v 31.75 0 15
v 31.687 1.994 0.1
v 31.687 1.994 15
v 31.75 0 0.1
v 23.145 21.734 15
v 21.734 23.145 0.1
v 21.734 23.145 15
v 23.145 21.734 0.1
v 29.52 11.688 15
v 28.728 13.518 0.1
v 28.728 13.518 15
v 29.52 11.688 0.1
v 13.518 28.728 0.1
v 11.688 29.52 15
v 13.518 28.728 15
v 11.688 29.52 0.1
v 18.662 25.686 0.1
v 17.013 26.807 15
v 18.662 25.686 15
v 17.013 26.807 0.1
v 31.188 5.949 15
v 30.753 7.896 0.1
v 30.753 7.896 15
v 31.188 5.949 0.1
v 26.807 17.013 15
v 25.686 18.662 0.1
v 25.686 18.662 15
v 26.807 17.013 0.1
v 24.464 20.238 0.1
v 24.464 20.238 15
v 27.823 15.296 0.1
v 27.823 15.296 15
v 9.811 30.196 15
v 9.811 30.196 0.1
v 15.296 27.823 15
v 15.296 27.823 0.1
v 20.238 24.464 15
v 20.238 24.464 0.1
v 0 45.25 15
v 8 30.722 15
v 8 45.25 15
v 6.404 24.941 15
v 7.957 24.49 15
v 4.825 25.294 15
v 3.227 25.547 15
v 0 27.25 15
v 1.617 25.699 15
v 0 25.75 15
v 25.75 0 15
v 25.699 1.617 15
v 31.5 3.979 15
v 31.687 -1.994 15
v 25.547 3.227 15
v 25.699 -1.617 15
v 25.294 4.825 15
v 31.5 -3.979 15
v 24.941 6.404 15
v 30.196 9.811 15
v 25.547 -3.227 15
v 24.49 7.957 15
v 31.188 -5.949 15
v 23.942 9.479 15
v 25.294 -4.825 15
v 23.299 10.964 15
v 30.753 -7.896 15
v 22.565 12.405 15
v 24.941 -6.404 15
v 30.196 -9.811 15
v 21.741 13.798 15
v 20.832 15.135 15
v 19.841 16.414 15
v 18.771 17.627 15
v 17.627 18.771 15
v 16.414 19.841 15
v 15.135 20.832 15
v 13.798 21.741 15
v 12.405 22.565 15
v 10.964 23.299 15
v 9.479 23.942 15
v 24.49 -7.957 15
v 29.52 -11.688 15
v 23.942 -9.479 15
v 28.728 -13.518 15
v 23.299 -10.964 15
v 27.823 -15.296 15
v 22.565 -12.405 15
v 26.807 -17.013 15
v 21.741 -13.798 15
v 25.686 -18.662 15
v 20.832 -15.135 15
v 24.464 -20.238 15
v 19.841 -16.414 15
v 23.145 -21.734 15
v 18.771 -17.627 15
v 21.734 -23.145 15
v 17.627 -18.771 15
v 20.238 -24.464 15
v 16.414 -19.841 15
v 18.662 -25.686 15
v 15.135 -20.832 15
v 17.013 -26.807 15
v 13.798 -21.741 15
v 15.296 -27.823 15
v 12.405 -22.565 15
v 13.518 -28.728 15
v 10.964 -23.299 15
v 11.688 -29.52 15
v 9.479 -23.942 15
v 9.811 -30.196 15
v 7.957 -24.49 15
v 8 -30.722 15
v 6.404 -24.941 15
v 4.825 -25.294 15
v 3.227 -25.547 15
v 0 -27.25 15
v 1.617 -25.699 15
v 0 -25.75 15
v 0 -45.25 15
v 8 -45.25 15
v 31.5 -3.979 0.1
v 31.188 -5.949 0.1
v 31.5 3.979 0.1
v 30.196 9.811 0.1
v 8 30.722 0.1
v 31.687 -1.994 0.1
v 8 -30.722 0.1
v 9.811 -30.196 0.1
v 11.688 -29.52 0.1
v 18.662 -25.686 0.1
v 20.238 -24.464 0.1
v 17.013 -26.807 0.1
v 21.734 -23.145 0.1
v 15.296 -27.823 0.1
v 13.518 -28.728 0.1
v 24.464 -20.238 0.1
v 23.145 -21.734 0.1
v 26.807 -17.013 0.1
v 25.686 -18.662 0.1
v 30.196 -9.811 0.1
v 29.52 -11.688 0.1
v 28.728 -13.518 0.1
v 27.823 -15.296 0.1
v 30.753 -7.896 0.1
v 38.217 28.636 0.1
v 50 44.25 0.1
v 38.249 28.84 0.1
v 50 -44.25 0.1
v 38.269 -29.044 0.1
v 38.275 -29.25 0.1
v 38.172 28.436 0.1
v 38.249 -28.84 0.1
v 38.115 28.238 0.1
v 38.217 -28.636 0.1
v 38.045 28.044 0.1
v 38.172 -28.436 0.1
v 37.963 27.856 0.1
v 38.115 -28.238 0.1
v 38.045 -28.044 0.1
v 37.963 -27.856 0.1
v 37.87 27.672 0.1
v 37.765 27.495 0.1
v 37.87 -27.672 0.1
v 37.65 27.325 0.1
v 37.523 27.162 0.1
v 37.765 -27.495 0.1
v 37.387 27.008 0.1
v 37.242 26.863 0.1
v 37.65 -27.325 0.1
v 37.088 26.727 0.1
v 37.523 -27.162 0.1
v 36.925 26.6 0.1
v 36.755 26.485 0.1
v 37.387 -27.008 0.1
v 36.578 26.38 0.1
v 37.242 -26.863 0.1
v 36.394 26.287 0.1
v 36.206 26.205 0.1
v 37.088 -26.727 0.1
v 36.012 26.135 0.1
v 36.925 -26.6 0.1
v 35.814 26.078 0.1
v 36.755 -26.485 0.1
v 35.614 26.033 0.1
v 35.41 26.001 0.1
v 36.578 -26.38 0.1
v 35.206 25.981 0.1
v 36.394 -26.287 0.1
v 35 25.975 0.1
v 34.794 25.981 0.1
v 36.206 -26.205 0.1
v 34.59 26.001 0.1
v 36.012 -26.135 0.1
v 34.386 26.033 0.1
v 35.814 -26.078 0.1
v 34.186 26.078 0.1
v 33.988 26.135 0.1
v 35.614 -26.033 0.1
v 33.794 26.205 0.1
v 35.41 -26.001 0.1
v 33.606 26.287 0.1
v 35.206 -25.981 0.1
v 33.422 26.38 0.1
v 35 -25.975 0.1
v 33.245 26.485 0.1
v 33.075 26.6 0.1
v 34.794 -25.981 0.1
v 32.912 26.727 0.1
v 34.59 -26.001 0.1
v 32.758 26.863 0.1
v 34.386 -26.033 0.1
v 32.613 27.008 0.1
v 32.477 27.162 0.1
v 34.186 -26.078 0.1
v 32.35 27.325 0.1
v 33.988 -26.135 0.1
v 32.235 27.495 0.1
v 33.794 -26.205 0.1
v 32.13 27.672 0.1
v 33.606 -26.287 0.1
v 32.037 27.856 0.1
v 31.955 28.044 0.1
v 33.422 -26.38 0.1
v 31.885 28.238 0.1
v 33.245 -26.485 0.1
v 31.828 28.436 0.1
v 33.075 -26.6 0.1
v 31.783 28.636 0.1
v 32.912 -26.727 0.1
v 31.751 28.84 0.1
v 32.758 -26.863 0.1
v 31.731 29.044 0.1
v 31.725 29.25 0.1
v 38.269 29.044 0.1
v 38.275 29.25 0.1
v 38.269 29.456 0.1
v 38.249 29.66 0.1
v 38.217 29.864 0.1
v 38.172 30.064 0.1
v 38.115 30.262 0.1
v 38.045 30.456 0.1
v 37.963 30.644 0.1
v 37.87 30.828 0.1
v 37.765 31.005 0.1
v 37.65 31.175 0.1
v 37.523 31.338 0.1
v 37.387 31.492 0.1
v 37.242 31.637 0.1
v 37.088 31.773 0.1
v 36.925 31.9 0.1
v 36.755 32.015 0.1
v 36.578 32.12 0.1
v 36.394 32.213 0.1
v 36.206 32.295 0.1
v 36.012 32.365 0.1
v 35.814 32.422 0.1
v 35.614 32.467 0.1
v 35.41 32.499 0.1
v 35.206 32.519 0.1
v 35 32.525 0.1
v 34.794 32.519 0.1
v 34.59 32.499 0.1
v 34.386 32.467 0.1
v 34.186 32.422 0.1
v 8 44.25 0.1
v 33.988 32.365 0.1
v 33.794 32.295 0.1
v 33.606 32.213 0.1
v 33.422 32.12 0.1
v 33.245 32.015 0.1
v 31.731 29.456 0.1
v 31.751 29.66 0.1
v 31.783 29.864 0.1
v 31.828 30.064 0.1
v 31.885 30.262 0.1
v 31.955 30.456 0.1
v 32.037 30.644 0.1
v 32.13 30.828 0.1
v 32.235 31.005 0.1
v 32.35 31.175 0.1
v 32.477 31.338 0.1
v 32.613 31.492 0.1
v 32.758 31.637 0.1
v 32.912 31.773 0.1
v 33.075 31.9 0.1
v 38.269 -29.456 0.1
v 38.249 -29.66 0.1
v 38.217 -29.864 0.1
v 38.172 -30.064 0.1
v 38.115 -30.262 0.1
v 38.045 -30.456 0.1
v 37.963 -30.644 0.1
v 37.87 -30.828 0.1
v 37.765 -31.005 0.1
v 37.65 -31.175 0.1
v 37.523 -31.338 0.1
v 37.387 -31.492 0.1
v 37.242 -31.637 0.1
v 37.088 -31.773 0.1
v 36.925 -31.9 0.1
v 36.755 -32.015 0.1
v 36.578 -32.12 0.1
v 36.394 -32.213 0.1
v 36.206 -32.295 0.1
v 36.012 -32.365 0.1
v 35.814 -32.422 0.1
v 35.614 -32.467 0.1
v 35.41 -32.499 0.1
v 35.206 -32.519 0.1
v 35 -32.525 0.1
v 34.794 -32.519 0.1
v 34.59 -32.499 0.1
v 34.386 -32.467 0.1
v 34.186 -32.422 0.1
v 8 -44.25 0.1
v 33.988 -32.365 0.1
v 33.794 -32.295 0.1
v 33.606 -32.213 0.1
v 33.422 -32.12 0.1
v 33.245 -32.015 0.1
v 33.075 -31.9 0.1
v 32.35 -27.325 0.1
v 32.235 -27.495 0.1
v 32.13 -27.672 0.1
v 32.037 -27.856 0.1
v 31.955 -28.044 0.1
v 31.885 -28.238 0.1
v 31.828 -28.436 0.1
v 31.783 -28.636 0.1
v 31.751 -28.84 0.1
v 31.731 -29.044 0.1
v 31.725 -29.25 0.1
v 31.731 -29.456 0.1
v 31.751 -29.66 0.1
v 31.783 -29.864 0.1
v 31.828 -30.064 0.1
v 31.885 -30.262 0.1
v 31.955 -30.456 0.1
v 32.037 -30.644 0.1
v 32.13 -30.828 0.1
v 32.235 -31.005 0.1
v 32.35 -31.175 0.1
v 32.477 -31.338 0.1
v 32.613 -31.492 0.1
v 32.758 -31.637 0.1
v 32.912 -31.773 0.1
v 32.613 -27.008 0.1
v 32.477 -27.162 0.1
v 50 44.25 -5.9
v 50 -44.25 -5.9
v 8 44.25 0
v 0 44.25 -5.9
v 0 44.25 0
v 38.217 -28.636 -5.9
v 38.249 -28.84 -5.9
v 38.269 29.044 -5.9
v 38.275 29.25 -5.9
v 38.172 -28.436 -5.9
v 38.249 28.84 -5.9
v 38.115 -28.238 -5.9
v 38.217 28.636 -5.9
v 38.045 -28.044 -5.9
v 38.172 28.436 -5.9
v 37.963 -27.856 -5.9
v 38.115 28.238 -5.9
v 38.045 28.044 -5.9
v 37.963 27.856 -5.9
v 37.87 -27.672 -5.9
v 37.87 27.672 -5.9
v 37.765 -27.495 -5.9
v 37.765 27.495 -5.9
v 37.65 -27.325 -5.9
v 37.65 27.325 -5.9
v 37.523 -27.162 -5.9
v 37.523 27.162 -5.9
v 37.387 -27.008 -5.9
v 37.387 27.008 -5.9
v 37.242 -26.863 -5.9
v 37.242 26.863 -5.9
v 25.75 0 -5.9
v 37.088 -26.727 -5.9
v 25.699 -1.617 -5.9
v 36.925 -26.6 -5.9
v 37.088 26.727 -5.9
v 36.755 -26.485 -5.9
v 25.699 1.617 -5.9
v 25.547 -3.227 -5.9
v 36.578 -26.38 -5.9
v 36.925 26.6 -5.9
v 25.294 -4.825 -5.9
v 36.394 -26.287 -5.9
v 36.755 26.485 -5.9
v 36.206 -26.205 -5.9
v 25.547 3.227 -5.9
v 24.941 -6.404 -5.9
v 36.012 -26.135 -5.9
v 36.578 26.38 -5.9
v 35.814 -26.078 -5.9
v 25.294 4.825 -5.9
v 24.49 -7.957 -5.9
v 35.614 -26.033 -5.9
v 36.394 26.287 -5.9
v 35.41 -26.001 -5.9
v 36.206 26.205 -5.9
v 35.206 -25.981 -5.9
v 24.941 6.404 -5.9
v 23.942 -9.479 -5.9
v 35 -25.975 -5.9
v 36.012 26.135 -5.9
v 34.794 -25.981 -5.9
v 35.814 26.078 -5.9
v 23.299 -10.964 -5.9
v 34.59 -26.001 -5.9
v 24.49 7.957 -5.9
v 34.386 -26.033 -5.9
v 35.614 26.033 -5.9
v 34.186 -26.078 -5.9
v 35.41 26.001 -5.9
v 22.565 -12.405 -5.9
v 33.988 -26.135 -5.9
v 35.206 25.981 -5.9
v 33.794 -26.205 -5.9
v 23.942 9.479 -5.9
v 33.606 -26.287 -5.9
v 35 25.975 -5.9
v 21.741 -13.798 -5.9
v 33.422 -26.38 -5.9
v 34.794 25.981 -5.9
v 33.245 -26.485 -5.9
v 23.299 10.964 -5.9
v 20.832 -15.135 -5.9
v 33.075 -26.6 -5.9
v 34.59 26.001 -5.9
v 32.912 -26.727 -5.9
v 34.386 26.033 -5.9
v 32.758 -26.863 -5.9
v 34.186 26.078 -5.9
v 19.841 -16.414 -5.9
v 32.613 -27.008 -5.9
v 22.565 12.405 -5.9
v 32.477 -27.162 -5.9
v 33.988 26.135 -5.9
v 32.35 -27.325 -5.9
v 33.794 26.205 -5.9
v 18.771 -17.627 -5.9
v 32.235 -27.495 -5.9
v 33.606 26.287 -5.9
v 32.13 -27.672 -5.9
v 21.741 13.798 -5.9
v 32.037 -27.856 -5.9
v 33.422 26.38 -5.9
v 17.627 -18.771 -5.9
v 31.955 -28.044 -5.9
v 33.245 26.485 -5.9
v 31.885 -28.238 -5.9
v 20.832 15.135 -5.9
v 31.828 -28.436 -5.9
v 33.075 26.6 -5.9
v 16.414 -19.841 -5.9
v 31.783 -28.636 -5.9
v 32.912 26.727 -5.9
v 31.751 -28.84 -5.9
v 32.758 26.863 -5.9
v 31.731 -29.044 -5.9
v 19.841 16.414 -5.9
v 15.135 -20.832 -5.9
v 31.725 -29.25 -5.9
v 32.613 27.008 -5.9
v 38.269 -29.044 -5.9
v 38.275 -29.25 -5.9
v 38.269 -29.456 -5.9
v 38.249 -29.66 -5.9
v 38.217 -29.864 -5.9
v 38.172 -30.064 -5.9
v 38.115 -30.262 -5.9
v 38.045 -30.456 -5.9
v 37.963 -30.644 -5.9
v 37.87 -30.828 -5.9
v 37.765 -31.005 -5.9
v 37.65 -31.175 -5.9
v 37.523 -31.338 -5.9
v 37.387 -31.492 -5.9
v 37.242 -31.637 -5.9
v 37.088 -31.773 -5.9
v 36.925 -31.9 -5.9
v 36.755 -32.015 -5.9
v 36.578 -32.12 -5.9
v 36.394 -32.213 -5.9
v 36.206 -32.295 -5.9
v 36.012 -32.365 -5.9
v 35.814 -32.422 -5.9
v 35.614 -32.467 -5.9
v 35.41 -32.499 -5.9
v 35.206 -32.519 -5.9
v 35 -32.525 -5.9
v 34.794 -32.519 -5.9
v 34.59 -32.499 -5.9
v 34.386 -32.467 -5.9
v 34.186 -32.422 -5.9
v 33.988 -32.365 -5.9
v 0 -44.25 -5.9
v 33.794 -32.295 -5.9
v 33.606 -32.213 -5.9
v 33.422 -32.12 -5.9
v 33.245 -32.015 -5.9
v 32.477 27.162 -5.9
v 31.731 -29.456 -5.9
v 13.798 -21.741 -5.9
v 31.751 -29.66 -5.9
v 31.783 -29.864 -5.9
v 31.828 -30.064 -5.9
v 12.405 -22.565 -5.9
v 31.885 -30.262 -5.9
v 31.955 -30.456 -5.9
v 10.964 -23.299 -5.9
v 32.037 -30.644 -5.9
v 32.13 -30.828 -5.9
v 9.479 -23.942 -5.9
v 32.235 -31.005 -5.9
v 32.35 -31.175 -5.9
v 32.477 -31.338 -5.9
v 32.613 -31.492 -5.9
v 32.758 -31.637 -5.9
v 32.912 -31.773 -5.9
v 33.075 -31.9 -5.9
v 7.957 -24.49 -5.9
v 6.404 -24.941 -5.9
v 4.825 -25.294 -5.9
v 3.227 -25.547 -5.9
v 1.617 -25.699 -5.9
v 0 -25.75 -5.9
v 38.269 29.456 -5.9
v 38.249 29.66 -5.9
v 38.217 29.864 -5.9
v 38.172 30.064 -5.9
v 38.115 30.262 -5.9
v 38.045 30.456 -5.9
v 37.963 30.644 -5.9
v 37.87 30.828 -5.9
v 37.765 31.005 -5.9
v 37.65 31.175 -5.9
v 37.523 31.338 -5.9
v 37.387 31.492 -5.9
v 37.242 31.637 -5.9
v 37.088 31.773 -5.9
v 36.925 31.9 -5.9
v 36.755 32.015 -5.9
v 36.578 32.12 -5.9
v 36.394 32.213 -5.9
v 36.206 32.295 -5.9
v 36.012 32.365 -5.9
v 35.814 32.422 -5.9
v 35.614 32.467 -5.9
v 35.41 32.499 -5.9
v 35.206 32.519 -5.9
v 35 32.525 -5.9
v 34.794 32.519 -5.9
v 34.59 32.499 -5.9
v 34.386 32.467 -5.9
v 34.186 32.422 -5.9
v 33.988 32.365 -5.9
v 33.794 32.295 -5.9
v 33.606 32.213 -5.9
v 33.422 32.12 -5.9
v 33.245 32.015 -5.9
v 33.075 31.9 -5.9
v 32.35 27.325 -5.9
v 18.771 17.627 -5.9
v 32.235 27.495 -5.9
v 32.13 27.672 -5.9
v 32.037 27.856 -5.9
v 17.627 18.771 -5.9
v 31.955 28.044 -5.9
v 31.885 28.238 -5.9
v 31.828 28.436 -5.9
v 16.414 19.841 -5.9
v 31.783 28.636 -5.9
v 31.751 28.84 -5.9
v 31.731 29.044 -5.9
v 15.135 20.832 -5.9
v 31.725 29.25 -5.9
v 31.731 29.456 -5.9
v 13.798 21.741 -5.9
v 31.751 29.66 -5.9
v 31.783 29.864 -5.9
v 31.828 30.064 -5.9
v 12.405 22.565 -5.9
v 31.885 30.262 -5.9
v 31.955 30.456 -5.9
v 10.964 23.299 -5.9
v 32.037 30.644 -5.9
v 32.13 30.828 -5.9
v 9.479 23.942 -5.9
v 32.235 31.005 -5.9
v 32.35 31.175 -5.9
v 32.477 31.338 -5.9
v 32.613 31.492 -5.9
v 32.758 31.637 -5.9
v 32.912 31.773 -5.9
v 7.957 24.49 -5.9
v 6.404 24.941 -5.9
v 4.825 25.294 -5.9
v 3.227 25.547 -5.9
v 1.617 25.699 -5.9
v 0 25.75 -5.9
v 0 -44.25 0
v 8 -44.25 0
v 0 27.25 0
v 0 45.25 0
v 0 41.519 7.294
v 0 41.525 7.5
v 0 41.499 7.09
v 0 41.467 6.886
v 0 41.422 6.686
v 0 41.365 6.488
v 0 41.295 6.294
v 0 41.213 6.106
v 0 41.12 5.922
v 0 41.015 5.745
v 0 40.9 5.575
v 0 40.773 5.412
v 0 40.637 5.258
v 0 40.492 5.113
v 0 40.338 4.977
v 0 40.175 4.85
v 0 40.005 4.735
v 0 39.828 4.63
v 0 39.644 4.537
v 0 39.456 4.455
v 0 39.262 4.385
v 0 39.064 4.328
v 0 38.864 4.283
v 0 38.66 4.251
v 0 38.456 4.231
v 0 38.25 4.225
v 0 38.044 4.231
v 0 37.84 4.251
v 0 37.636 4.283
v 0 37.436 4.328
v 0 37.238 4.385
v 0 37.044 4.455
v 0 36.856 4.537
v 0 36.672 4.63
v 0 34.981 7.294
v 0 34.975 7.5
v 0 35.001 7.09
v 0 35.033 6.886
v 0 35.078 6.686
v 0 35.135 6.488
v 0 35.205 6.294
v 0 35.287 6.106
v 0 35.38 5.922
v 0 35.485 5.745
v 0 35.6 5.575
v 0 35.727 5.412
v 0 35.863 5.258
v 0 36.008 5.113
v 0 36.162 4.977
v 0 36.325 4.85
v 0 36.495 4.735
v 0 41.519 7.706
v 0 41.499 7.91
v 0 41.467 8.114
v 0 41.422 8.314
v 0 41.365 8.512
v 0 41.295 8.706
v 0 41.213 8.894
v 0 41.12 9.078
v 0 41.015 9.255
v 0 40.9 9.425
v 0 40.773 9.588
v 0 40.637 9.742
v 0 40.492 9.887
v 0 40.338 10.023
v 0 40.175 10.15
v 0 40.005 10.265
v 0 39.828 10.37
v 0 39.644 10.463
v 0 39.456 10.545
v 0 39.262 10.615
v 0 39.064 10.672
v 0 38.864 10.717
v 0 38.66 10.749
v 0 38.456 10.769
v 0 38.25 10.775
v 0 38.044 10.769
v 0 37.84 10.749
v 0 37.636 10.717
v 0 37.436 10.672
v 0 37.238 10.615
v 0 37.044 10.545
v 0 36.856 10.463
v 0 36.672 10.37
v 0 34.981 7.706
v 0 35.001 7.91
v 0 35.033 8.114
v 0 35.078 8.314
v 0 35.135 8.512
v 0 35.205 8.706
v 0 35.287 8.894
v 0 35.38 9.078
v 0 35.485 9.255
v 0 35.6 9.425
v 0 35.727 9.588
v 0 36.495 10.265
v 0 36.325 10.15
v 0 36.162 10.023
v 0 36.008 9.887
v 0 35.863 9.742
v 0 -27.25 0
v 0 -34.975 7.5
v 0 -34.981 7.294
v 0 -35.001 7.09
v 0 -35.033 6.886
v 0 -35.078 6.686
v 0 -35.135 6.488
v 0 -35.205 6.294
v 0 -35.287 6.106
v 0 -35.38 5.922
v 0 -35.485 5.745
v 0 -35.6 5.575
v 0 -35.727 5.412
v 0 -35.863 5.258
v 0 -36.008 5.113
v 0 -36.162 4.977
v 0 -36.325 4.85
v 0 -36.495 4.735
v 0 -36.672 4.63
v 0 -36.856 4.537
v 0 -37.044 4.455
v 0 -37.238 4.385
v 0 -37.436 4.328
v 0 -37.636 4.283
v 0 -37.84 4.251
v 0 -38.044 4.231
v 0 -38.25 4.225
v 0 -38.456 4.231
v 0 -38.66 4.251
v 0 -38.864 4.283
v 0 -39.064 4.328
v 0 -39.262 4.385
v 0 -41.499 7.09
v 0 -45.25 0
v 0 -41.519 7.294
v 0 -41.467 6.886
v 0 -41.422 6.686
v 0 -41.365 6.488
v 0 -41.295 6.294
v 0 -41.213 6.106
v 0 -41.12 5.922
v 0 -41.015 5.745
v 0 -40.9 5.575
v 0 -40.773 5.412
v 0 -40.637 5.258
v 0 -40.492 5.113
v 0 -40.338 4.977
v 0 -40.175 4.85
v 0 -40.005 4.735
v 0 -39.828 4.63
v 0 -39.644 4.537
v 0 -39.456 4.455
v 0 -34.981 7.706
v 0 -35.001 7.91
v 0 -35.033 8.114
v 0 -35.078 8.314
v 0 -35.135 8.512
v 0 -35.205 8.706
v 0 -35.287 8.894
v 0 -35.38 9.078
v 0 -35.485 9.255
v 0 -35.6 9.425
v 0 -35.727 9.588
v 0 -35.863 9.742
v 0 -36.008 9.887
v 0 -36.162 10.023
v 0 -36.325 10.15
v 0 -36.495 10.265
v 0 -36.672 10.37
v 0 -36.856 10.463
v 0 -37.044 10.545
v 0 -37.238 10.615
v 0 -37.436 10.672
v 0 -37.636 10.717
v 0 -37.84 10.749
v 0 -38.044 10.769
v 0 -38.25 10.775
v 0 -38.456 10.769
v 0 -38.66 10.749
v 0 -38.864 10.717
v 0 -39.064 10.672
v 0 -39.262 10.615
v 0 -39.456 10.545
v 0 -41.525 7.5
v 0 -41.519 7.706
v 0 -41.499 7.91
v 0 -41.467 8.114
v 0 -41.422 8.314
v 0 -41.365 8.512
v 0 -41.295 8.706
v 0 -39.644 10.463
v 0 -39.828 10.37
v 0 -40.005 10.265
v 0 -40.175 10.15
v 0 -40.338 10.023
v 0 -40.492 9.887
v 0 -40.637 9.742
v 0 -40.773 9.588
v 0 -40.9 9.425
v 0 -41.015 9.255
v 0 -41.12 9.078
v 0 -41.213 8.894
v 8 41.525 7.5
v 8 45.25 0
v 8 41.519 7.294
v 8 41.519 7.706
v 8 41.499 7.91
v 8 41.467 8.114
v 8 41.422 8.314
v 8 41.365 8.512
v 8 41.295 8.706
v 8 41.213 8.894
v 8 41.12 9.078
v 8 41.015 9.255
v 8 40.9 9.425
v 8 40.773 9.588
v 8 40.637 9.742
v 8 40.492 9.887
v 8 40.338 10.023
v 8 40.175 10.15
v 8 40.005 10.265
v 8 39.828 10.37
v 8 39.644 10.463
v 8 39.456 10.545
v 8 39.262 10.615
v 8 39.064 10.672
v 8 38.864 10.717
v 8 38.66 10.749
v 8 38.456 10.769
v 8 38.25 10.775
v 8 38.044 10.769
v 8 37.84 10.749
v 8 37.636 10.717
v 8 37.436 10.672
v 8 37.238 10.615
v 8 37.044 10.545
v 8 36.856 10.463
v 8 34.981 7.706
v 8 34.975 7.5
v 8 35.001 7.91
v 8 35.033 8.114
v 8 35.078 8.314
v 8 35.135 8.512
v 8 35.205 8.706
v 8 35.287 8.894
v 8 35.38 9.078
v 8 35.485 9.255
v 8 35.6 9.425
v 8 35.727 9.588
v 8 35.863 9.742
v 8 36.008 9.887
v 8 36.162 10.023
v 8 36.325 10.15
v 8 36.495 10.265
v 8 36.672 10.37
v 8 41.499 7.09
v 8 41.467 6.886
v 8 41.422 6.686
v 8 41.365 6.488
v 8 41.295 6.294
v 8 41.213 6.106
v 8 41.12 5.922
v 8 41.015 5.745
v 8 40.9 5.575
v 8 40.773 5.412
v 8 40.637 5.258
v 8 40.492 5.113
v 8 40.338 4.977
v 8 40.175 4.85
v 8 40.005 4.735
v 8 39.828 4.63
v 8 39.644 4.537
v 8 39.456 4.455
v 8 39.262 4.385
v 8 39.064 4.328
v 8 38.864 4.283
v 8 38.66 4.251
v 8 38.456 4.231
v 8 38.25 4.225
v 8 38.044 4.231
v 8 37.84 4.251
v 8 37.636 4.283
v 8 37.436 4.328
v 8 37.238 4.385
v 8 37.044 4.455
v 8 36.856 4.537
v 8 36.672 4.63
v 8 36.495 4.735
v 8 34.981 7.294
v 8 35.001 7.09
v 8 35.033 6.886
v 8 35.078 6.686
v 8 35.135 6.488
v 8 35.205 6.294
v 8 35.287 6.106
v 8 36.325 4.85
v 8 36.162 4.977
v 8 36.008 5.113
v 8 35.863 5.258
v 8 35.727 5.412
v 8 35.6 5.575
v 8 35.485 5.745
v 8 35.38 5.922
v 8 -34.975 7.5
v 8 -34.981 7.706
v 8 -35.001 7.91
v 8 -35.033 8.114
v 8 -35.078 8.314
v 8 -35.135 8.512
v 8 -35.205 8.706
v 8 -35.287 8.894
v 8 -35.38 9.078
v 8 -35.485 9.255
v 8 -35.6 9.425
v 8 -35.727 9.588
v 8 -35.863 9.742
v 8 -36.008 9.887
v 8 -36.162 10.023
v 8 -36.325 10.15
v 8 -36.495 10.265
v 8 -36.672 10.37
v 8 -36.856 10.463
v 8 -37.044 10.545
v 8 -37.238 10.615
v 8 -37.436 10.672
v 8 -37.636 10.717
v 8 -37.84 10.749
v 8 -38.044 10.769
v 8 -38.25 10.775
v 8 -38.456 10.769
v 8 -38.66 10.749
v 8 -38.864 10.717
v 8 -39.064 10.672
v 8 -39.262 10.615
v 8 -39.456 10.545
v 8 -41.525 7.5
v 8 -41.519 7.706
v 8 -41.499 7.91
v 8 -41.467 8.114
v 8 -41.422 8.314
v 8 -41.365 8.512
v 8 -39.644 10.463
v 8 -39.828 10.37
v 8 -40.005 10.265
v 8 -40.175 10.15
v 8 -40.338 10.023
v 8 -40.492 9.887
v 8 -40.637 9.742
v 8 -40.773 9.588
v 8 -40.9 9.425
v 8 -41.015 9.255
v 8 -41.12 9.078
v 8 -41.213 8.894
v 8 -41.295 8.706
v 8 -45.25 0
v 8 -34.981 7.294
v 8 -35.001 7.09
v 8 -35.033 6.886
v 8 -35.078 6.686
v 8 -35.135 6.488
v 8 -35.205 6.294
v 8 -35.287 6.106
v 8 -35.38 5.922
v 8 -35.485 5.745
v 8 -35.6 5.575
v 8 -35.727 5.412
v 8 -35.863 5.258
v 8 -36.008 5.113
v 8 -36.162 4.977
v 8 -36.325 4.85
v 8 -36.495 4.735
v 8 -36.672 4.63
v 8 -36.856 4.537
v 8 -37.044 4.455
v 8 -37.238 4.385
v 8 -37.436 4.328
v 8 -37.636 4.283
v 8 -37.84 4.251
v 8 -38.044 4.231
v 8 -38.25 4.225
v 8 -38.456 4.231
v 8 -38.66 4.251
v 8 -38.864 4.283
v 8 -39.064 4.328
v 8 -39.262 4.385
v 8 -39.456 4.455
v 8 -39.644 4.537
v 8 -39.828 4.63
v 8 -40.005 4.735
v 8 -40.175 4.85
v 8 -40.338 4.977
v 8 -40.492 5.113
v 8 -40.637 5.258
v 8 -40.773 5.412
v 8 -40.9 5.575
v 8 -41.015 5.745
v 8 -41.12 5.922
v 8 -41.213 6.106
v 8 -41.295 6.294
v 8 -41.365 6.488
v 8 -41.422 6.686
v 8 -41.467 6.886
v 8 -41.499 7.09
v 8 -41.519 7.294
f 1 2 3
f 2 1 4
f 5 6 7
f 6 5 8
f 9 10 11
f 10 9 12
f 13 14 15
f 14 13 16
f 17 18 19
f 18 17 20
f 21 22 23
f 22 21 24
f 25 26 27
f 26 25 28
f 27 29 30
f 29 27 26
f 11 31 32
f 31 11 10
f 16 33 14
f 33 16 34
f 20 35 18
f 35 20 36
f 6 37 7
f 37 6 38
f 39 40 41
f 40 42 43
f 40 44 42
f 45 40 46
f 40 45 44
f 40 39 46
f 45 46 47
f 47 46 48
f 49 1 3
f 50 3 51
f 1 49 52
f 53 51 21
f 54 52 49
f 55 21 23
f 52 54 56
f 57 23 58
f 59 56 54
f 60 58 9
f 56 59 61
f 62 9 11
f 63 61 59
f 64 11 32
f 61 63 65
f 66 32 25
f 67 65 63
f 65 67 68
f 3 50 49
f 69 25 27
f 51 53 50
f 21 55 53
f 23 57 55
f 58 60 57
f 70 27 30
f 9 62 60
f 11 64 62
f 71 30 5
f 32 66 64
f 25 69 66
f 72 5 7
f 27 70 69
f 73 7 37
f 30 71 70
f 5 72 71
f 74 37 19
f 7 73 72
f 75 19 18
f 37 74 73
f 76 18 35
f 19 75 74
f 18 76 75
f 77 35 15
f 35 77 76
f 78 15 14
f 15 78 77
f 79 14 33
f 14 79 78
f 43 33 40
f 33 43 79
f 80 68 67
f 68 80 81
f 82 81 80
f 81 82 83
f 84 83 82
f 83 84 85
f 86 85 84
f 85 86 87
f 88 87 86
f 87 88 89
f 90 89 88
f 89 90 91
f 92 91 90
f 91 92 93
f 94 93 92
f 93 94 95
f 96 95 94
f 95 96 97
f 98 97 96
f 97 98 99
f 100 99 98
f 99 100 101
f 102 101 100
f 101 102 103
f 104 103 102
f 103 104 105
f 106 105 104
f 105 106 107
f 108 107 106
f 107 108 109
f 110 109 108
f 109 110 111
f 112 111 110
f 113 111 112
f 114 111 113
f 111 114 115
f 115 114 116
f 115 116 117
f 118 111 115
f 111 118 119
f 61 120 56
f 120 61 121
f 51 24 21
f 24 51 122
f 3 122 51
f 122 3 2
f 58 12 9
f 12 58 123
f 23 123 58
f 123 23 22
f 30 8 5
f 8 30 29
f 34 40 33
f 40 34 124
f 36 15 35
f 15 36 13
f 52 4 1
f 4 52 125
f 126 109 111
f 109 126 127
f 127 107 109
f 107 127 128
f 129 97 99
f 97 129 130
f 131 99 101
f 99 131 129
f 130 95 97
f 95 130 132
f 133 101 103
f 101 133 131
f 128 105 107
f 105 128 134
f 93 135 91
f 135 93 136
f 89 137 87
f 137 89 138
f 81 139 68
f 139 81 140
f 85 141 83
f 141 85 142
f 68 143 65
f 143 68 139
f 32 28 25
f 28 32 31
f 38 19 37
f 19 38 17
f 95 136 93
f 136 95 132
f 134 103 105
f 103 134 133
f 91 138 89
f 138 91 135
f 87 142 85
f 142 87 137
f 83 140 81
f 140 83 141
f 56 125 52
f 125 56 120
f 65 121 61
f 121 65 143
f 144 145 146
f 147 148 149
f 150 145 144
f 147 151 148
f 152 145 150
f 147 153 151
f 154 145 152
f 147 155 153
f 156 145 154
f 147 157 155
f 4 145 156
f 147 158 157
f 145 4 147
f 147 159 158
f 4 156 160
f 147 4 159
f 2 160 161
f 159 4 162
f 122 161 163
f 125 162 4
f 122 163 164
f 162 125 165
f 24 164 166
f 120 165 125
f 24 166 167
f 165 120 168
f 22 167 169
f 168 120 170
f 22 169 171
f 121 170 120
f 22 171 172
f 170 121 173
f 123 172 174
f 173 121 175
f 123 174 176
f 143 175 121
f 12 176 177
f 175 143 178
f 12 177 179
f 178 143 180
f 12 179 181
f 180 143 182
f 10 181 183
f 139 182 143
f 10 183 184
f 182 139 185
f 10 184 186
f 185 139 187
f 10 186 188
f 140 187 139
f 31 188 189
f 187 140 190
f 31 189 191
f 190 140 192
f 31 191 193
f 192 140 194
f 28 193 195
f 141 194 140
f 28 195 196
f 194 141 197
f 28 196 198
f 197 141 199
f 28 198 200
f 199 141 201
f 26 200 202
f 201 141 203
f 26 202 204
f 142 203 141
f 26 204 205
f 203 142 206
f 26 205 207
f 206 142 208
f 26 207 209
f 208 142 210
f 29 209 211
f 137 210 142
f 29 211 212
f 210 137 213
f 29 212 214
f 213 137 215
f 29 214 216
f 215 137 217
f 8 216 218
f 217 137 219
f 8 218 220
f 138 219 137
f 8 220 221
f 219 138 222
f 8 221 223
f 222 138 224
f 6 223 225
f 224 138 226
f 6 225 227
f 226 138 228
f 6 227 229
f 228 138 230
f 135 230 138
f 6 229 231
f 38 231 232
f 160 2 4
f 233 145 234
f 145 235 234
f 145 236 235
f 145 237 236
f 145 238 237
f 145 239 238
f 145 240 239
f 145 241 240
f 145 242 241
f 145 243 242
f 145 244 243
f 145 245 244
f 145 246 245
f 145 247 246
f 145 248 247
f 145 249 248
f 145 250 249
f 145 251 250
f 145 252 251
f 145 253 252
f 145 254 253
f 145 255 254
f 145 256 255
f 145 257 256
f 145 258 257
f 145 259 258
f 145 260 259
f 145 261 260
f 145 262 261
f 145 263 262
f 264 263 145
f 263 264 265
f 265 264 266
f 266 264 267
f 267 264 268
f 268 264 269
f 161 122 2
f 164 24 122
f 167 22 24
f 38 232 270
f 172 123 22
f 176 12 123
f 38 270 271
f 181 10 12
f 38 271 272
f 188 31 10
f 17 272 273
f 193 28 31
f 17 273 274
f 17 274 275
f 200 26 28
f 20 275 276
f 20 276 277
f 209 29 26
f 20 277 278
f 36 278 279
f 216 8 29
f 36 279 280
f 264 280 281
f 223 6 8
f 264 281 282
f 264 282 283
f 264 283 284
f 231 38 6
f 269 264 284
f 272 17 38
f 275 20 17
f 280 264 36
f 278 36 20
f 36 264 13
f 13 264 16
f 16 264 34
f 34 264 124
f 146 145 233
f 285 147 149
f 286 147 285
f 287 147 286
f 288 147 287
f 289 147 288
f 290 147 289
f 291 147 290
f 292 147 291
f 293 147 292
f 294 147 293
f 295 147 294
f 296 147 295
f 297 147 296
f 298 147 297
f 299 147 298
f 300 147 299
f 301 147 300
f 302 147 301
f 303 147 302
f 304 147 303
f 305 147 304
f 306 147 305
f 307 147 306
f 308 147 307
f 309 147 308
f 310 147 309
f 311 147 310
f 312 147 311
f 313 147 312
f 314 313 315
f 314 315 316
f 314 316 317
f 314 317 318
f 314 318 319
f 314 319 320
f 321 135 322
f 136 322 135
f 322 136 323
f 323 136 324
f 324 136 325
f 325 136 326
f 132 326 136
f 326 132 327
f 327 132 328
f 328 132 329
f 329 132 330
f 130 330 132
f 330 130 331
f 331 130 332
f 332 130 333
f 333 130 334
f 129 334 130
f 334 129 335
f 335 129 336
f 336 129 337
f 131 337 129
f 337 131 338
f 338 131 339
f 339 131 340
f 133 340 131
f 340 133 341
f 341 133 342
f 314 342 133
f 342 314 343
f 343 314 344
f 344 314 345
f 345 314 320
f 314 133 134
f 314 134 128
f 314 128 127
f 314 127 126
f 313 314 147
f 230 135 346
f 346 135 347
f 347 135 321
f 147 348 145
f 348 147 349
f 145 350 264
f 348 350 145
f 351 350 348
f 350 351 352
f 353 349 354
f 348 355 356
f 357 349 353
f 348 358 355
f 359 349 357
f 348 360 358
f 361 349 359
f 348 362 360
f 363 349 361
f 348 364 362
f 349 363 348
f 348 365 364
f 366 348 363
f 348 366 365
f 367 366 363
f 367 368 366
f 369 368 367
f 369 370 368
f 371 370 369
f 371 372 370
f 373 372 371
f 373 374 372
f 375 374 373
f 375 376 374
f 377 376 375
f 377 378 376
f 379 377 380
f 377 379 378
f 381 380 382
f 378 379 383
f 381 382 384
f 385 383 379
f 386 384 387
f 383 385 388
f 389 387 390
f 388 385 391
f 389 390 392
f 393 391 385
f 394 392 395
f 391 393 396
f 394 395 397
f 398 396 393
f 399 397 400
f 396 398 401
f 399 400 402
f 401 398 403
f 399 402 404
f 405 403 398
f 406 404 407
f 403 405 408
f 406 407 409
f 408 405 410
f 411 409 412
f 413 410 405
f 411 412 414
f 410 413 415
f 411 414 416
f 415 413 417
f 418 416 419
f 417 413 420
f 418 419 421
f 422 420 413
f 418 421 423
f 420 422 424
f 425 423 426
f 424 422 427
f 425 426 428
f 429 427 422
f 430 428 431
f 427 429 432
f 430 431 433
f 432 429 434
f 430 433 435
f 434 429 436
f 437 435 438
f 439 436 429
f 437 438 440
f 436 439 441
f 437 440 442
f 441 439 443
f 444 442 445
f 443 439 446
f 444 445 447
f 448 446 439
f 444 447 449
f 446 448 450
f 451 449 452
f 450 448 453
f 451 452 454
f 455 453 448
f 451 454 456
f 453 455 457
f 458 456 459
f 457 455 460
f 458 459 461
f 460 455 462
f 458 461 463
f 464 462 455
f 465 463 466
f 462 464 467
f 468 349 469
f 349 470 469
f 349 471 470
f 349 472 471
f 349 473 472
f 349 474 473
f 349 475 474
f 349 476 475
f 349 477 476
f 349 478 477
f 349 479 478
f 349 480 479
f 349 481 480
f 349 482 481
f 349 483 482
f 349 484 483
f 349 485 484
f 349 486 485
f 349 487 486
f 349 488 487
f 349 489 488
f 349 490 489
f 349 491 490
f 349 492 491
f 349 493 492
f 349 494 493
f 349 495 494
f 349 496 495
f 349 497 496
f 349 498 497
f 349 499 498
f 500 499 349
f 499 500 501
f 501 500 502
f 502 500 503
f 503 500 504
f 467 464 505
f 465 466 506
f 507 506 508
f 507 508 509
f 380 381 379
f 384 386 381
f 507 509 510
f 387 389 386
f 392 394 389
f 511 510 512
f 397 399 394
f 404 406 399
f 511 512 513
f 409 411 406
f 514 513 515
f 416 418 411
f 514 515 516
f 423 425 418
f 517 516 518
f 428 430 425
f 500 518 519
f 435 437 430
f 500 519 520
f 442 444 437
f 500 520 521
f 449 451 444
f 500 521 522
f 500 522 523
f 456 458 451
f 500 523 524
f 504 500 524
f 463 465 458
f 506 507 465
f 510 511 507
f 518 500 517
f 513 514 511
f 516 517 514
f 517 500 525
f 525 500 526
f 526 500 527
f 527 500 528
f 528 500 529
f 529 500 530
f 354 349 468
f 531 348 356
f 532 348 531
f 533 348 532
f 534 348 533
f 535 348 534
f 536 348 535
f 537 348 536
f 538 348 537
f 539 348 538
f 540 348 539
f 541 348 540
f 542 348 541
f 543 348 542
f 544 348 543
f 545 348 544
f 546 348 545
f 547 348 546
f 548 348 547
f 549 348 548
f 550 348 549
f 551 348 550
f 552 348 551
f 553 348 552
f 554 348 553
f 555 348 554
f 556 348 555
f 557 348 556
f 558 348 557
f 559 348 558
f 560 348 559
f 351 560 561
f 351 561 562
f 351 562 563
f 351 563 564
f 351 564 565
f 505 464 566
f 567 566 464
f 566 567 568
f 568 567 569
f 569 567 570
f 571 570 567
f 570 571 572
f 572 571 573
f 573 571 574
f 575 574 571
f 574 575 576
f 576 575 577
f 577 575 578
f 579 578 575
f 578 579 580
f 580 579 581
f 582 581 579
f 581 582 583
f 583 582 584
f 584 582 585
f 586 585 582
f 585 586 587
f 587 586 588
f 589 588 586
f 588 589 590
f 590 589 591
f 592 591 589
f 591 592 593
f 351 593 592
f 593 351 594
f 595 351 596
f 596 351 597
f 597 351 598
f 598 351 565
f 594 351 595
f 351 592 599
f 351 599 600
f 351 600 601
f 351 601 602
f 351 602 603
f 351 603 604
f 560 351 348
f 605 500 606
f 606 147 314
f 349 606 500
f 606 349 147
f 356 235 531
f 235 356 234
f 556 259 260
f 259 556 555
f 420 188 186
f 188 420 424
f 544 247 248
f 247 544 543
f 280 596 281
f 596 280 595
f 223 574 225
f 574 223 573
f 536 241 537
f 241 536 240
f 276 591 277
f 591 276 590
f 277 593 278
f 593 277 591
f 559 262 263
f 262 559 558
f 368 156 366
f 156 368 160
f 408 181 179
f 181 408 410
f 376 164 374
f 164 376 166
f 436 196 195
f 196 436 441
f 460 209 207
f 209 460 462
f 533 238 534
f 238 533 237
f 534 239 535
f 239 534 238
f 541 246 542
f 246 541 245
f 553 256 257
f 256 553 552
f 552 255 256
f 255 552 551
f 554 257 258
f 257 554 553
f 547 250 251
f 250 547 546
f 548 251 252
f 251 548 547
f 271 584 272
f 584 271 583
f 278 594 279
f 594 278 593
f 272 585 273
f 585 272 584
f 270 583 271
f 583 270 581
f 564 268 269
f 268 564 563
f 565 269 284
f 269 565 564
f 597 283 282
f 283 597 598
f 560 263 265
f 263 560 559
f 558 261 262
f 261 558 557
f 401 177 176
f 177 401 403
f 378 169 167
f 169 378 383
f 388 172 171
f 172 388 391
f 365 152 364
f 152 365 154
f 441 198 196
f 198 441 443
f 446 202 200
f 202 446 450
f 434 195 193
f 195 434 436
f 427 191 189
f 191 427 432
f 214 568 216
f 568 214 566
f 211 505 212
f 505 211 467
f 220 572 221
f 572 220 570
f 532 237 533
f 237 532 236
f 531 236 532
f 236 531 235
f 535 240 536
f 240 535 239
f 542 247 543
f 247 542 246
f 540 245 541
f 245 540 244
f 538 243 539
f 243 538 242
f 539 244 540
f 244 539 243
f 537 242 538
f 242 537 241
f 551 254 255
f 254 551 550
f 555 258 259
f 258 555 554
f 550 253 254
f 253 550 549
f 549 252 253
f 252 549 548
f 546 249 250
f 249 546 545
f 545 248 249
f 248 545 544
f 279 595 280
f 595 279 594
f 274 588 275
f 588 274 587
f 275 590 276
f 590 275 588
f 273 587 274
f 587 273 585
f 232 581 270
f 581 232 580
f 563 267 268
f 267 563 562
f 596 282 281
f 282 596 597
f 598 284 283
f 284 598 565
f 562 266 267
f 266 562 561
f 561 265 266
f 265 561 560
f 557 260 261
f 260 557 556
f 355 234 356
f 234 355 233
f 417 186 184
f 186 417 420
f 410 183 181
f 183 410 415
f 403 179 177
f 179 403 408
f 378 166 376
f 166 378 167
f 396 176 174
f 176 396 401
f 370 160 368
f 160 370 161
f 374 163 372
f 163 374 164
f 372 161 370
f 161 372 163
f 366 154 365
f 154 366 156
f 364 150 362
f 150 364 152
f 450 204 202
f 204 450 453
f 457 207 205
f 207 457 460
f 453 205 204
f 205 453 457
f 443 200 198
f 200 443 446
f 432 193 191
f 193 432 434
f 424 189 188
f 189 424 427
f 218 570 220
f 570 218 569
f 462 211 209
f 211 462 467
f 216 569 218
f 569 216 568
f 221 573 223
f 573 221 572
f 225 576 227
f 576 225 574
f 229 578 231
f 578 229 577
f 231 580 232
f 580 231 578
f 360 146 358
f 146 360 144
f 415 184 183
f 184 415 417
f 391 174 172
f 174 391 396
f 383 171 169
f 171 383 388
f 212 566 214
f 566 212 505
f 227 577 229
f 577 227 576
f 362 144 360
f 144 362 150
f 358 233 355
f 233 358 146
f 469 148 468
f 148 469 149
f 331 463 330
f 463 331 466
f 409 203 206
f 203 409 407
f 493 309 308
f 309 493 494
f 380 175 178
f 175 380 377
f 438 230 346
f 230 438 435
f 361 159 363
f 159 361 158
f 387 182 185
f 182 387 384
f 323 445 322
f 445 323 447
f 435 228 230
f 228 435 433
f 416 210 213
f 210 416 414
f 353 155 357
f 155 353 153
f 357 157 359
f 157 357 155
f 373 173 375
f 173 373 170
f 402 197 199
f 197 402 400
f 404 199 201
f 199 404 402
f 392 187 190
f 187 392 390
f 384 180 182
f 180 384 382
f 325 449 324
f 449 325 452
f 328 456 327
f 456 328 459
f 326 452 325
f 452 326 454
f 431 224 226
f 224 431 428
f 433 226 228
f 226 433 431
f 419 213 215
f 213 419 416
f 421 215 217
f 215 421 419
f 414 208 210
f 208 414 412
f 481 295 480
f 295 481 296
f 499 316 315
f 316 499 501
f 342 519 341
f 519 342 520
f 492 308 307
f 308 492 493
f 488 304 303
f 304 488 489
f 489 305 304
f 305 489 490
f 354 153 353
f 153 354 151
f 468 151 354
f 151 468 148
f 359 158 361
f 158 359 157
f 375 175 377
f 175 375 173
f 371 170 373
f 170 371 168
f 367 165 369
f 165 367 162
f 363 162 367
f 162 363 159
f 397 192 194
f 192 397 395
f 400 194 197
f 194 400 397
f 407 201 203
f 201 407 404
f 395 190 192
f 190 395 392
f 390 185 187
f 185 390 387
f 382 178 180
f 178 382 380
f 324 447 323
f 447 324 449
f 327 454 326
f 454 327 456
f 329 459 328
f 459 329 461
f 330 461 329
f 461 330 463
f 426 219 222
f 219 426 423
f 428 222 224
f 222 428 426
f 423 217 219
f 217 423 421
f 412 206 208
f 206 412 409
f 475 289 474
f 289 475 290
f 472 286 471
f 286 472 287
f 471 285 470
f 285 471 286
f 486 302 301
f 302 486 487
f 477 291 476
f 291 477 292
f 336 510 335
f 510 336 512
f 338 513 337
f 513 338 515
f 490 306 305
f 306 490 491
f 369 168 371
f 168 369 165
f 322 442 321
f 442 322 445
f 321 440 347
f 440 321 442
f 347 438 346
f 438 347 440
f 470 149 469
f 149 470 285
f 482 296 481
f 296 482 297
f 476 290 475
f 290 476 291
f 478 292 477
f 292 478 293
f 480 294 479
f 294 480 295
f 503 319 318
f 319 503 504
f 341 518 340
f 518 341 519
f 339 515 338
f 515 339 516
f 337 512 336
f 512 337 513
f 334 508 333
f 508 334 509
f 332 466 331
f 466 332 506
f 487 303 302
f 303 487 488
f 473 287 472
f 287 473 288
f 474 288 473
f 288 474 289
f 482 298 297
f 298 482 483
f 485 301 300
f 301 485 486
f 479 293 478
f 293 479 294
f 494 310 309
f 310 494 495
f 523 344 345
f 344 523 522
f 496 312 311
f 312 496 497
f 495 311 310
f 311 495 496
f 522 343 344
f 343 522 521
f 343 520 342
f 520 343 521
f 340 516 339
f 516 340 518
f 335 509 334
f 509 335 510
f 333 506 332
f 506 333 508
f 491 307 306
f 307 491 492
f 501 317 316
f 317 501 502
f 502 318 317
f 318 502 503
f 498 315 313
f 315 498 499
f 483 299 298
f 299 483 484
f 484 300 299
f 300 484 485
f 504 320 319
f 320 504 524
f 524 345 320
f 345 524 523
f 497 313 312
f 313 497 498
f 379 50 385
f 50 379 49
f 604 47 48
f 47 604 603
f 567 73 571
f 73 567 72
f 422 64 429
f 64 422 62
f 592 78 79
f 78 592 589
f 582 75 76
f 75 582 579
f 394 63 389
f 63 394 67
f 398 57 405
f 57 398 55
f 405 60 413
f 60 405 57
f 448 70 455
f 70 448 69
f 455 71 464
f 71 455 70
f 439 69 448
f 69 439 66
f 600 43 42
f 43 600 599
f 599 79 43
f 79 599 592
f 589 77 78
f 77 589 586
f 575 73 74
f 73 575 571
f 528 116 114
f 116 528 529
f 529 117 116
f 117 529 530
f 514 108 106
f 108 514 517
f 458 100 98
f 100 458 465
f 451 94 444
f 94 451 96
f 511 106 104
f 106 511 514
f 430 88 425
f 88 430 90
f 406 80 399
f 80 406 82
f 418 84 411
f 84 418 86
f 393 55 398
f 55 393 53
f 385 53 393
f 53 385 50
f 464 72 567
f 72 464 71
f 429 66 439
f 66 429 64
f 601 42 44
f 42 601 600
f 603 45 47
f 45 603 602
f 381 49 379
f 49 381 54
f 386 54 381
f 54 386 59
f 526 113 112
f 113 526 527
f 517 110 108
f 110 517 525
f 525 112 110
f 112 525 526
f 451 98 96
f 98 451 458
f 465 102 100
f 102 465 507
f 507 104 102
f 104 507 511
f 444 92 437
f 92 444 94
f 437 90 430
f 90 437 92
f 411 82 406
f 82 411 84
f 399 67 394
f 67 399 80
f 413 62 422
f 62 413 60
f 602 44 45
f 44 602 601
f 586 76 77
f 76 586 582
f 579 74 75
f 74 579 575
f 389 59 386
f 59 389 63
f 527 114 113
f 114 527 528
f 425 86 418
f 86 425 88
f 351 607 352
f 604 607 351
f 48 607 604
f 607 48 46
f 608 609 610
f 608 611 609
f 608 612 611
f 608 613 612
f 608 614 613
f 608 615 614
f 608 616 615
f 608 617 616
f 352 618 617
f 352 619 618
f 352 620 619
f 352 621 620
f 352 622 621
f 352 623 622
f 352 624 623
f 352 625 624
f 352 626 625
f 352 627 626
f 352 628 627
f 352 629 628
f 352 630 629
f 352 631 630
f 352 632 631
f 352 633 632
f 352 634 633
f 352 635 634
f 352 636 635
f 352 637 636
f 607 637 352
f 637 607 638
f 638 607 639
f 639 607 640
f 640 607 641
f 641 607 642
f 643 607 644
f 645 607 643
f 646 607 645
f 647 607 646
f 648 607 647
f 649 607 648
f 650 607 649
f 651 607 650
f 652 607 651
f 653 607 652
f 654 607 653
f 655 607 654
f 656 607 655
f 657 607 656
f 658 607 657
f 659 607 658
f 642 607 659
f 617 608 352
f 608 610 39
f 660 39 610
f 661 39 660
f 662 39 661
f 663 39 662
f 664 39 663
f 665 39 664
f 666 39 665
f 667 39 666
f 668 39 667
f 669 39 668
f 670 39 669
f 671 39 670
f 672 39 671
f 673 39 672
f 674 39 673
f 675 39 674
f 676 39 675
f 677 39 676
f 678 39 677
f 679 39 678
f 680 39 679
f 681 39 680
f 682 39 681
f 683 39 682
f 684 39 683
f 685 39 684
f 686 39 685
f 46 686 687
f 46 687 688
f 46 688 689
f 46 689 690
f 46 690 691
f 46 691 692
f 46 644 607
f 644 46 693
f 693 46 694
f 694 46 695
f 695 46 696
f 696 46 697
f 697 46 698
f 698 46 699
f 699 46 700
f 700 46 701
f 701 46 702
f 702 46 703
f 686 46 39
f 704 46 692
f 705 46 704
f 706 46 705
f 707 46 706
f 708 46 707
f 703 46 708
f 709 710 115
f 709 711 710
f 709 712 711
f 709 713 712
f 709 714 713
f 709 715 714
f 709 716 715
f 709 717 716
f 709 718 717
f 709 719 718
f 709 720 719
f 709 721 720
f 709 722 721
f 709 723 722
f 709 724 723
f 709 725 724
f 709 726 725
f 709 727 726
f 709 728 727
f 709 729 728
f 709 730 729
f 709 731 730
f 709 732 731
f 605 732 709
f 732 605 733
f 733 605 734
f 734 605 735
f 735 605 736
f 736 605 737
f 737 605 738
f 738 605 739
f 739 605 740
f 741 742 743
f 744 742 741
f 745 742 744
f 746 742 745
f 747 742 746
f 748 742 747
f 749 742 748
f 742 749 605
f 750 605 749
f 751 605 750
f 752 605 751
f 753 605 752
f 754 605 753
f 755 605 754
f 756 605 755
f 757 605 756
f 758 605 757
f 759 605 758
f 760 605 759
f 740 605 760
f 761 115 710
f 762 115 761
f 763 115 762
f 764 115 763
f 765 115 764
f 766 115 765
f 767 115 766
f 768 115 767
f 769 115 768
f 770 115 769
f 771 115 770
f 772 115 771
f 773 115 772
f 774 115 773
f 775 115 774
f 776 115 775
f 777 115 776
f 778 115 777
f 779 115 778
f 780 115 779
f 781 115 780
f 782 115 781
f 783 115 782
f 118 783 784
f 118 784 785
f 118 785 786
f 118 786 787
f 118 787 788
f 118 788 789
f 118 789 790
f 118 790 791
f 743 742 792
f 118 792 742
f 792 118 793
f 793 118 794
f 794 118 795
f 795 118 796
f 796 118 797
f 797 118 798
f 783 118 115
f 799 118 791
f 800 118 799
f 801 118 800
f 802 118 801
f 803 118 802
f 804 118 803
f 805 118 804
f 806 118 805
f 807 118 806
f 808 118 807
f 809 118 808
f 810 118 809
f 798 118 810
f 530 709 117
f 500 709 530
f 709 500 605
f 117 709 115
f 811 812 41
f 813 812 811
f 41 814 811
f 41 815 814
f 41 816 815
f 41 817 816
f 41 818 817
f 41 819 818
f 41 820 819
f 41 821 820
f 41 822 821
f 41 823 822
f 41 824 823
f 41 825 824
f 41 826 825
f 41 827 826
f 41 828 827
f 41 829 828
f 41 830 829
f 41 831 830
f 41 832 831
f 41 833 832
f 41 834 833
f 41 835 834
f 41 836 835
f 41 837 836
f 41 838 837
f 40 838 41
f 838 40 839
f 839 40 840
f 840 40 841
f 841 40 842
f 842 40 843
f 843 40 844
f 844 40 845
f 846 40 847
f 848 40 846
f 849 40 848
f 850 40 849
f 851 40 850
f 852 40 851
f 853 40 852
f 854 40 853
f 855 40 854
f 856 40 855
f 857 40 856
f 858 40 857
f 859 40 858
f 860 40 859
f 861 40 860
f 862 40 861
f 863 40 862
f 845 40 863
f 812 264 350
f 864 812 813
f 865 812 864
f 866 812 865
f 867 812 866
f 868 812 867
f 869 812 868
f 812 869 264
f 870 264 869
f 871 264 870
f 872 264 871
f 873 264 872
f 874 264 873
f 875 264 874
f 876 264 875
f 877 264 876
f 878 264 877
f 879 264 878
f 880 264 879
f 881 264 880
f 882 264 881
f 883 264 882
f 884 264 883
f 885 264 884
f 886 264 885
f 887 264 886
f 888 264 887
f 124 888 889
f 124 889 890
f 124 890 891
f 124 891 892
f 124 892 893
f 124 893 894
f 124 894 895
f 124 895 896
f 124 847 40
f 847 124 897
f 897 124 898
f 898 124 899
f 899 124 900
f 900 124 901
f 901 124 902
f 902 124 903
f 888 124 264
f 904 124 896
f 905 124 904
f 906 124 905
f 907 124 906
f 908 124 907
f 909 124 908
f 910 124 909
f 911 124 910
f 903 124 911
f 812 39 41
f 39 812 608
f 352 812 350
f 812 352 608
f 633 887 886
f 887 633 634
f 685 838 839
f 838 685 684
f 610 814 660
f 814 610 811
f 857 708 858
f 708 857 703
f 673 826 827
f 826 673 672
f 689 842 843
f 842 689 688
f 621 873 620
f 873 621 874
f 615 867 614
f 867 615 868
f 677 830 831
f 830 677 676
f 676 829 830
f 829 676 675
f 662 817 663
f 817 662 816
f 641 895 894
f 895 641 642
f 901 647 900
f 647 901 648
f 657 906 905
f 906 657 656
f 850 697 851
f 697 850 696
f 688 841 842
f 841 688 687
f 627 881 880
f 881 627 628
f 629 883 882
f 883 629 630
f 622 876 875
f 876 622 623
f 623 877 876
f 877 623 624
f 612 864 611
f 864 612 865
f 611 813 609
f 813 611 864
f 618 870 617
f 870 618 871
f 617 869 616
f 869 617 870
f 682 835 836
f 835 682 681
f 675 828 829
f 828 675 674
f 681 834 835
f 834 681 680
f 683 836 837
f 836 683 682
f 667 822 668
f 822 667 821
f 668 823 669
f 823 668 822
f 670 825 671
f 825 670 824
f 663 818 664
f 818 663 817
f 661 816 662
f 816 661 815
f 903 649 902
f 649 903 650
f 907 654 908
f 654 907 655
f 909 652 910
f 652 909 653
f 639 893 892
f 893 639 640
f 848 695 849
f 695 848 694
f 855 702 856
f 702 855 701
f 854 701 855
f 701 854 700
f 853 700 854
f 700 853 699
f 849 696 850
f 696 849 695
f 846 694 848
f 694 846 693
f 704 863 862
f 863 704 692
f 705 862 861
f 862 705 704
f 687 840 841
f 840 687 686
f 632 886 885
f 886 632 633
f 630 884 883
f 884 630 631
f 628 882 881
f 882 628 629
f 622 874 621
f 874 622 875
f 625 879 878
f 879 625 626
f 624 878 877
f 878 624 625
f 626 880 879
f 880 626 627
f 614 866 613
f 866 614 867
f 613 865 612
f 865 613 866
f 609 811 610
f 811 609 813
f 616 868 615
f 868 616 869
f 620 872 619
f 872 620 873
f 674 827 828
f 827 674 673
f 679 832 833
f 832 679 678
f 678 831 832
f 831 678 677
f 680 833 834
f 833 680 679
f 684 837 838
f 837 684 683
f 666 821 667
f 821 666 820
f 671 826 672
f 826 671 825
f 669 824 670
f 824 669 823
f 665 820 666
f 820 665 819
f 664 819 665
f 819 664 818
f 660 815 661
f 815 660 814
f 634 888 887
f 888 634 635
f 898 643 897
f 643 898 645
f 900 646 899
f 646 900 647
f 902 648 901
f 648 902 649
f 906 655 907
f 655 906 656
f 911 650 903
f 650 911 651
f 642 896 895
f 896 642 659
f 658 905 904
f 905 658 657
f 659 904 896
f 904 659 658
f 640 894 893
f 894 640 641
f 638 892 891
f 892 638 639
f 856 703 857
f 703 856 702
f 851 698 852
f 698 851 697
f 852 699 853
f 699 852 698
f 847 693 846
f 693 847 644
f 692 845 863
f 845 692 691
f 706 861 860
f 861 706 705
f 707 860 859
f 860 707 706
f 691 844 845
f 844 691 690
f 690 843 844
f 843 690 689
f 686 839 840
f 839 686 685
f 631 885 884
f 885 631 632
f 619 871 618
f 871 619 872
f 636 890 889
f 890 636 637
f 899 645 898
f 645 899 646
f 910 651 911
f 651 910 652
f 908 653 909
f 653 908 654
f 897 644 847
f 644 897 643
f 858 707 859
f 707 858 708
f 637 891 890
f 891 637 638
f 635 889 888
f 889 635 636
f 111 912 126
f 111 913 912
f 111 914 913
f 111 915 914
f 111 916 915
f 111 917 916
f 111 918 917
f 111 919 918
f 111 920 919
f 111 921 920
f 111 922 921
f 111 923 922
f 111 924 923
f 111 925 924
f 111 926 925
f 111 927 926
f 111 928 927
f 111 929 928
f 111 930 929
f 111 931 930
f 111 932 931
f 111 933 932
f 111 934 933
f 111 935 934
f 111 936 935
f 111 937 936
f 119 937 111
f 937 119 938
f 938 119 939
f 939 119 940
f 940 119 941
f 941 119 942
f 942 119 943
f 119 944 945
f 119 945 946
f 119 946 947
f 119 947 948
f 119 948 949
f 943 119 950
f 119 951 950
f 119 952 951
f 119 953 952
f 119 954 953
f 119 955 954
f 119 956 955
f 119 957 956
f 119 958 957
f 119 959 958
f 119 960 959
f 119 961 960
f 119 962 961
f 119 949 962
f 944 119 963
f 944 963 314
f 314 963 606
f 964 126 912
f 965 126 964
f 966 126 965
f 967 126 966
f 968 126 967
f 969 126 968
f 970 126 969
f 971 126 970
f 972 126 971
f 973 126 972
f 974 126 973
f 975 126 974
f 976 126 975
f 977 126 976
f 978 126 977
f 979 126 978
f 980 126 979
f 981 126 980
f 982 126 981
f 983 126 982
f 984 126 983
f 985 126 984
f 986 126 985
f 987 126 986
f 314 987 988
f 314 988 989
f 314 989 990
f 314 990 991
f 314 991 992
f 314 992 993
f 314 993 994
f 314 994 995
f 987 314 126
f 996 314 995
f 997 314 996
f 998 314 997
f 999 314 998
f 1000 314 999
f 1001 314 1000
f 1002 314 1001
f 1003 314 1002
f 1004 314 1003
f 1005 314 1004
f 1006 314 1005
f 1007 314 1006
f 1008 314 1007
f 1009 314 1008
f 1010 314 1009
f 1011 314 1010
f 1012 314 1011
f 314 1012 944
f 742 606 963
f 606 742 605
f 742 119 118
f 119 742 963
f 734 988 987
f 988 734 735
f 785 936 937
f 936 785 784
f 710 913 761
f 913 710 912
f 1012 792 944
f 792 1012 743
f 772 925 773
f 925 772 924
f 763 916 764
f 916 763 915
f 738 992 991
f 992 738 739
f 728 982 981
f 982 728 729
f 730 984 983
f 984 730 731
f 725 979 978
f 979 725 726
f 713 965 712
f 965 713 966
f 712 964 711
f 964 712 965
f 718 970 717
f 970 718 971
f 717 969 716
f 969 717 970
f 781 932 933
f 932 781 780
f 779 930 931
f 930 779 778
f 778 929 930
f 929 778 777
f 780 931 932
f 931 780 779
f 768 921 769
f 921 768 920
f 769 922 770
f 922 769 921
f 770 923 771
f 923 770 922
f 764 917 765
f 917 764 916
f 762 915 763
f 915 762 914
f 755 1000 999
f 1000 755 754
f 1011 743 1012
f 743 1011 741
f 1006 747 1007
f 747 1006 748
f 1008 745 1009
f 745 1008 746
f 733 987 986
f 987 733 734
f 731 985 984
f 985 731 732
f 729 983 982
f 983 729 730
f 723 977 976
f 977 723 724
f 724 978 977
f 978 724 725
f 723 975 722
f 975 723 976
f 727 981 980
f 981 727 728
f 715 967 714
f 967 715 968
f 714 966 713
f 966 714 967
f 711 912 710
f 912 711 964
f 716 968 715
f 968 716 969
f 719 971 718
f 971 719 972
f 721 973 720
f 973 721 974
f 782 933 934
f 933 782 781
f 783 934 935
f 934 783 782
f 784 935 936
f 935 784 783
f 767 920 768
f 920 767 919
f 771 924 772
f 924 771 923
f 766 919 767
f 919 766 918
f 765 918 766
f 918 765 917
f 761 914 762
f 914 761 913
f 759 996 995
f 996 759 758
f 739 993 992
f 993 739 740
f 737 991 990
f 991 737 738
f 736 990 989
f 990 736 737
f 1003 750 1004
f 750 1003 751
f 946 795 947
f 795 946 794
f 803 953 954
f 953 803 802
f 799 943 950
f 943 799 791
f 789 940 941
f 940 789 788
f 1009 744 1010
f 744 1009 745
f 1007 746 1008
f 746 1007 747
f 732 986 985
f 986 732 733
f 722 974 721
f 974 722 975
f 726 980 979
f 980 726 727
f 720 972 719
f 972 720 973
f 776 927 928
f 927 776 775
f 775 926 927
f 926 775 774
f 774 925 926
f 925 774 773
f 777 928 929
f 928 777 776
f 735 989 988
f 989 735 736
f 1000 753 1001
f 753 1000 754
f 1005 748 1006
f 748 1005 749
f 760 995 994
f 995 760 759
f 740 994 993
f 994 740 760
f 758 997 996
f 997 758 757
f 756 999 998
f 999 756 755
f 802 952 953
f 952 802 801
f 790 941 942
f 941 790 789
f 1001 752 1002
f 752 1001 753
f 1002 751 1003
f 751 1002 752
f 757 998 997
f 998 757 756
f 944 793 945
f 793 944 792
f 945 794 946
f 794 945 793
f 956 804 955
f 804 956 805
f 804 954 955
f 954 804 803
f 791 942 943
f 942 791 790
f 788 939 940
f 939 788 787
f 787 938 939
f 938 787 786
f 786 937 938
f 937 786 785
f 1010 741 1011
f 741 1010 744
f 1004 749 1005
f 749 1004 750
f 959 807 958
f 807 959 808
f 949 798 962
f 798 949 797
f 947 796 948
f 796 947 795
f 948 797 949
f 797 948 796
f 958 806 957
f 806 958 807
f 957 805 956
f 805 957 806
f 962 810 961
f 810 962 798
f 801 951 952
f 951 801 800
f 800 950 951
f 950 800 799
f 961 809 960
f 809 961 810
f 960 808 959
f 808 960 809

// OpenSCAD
$fn=100;


IR=51.5/2;
OR=IR+6;
h=15;
x=8;
y=18;
in=25.4;
sq_x=100;
sq_y=OR*2+25;
sq_h=6;

bolt=in/4+.2;

module hole() {
    difference(){
        union(){
            cylinder(h,OR,OR);
            translate([0,0,-sq_h/2+.1])
            
            cube([sq_x,sq_y,sq_h],center=true);
            }
        translate([0,0,-h])
        cylinder(h*3,IR,IR);
        
            for(i=[0:1]){
                translate([sq_x/2 - 15, (-1)^i*(sq_y/2 - 15),-h])
                cylinder(100,d=bolt);
            }
    translate([-50,0,0])
    cube([sq_x,sq_y+2,100],center=true);
    }
    translate([x/2,OR+y/4,h/2])
    difference(){
    cube([x,y,h],center=true);
        
        rotate([0,90,0])
        translate([0,2,-h])
        cylinder(100,d=bolt);
    }
    
    translate([x/2,-OR-y/4,h/2])
    difference(){
    cube([x,y,h],center=true);
        
        rotate([0,90,0])
        translate([0,-2,-h])
        cylinder(100,d=bolt);
    }
    
    
}

hole();
